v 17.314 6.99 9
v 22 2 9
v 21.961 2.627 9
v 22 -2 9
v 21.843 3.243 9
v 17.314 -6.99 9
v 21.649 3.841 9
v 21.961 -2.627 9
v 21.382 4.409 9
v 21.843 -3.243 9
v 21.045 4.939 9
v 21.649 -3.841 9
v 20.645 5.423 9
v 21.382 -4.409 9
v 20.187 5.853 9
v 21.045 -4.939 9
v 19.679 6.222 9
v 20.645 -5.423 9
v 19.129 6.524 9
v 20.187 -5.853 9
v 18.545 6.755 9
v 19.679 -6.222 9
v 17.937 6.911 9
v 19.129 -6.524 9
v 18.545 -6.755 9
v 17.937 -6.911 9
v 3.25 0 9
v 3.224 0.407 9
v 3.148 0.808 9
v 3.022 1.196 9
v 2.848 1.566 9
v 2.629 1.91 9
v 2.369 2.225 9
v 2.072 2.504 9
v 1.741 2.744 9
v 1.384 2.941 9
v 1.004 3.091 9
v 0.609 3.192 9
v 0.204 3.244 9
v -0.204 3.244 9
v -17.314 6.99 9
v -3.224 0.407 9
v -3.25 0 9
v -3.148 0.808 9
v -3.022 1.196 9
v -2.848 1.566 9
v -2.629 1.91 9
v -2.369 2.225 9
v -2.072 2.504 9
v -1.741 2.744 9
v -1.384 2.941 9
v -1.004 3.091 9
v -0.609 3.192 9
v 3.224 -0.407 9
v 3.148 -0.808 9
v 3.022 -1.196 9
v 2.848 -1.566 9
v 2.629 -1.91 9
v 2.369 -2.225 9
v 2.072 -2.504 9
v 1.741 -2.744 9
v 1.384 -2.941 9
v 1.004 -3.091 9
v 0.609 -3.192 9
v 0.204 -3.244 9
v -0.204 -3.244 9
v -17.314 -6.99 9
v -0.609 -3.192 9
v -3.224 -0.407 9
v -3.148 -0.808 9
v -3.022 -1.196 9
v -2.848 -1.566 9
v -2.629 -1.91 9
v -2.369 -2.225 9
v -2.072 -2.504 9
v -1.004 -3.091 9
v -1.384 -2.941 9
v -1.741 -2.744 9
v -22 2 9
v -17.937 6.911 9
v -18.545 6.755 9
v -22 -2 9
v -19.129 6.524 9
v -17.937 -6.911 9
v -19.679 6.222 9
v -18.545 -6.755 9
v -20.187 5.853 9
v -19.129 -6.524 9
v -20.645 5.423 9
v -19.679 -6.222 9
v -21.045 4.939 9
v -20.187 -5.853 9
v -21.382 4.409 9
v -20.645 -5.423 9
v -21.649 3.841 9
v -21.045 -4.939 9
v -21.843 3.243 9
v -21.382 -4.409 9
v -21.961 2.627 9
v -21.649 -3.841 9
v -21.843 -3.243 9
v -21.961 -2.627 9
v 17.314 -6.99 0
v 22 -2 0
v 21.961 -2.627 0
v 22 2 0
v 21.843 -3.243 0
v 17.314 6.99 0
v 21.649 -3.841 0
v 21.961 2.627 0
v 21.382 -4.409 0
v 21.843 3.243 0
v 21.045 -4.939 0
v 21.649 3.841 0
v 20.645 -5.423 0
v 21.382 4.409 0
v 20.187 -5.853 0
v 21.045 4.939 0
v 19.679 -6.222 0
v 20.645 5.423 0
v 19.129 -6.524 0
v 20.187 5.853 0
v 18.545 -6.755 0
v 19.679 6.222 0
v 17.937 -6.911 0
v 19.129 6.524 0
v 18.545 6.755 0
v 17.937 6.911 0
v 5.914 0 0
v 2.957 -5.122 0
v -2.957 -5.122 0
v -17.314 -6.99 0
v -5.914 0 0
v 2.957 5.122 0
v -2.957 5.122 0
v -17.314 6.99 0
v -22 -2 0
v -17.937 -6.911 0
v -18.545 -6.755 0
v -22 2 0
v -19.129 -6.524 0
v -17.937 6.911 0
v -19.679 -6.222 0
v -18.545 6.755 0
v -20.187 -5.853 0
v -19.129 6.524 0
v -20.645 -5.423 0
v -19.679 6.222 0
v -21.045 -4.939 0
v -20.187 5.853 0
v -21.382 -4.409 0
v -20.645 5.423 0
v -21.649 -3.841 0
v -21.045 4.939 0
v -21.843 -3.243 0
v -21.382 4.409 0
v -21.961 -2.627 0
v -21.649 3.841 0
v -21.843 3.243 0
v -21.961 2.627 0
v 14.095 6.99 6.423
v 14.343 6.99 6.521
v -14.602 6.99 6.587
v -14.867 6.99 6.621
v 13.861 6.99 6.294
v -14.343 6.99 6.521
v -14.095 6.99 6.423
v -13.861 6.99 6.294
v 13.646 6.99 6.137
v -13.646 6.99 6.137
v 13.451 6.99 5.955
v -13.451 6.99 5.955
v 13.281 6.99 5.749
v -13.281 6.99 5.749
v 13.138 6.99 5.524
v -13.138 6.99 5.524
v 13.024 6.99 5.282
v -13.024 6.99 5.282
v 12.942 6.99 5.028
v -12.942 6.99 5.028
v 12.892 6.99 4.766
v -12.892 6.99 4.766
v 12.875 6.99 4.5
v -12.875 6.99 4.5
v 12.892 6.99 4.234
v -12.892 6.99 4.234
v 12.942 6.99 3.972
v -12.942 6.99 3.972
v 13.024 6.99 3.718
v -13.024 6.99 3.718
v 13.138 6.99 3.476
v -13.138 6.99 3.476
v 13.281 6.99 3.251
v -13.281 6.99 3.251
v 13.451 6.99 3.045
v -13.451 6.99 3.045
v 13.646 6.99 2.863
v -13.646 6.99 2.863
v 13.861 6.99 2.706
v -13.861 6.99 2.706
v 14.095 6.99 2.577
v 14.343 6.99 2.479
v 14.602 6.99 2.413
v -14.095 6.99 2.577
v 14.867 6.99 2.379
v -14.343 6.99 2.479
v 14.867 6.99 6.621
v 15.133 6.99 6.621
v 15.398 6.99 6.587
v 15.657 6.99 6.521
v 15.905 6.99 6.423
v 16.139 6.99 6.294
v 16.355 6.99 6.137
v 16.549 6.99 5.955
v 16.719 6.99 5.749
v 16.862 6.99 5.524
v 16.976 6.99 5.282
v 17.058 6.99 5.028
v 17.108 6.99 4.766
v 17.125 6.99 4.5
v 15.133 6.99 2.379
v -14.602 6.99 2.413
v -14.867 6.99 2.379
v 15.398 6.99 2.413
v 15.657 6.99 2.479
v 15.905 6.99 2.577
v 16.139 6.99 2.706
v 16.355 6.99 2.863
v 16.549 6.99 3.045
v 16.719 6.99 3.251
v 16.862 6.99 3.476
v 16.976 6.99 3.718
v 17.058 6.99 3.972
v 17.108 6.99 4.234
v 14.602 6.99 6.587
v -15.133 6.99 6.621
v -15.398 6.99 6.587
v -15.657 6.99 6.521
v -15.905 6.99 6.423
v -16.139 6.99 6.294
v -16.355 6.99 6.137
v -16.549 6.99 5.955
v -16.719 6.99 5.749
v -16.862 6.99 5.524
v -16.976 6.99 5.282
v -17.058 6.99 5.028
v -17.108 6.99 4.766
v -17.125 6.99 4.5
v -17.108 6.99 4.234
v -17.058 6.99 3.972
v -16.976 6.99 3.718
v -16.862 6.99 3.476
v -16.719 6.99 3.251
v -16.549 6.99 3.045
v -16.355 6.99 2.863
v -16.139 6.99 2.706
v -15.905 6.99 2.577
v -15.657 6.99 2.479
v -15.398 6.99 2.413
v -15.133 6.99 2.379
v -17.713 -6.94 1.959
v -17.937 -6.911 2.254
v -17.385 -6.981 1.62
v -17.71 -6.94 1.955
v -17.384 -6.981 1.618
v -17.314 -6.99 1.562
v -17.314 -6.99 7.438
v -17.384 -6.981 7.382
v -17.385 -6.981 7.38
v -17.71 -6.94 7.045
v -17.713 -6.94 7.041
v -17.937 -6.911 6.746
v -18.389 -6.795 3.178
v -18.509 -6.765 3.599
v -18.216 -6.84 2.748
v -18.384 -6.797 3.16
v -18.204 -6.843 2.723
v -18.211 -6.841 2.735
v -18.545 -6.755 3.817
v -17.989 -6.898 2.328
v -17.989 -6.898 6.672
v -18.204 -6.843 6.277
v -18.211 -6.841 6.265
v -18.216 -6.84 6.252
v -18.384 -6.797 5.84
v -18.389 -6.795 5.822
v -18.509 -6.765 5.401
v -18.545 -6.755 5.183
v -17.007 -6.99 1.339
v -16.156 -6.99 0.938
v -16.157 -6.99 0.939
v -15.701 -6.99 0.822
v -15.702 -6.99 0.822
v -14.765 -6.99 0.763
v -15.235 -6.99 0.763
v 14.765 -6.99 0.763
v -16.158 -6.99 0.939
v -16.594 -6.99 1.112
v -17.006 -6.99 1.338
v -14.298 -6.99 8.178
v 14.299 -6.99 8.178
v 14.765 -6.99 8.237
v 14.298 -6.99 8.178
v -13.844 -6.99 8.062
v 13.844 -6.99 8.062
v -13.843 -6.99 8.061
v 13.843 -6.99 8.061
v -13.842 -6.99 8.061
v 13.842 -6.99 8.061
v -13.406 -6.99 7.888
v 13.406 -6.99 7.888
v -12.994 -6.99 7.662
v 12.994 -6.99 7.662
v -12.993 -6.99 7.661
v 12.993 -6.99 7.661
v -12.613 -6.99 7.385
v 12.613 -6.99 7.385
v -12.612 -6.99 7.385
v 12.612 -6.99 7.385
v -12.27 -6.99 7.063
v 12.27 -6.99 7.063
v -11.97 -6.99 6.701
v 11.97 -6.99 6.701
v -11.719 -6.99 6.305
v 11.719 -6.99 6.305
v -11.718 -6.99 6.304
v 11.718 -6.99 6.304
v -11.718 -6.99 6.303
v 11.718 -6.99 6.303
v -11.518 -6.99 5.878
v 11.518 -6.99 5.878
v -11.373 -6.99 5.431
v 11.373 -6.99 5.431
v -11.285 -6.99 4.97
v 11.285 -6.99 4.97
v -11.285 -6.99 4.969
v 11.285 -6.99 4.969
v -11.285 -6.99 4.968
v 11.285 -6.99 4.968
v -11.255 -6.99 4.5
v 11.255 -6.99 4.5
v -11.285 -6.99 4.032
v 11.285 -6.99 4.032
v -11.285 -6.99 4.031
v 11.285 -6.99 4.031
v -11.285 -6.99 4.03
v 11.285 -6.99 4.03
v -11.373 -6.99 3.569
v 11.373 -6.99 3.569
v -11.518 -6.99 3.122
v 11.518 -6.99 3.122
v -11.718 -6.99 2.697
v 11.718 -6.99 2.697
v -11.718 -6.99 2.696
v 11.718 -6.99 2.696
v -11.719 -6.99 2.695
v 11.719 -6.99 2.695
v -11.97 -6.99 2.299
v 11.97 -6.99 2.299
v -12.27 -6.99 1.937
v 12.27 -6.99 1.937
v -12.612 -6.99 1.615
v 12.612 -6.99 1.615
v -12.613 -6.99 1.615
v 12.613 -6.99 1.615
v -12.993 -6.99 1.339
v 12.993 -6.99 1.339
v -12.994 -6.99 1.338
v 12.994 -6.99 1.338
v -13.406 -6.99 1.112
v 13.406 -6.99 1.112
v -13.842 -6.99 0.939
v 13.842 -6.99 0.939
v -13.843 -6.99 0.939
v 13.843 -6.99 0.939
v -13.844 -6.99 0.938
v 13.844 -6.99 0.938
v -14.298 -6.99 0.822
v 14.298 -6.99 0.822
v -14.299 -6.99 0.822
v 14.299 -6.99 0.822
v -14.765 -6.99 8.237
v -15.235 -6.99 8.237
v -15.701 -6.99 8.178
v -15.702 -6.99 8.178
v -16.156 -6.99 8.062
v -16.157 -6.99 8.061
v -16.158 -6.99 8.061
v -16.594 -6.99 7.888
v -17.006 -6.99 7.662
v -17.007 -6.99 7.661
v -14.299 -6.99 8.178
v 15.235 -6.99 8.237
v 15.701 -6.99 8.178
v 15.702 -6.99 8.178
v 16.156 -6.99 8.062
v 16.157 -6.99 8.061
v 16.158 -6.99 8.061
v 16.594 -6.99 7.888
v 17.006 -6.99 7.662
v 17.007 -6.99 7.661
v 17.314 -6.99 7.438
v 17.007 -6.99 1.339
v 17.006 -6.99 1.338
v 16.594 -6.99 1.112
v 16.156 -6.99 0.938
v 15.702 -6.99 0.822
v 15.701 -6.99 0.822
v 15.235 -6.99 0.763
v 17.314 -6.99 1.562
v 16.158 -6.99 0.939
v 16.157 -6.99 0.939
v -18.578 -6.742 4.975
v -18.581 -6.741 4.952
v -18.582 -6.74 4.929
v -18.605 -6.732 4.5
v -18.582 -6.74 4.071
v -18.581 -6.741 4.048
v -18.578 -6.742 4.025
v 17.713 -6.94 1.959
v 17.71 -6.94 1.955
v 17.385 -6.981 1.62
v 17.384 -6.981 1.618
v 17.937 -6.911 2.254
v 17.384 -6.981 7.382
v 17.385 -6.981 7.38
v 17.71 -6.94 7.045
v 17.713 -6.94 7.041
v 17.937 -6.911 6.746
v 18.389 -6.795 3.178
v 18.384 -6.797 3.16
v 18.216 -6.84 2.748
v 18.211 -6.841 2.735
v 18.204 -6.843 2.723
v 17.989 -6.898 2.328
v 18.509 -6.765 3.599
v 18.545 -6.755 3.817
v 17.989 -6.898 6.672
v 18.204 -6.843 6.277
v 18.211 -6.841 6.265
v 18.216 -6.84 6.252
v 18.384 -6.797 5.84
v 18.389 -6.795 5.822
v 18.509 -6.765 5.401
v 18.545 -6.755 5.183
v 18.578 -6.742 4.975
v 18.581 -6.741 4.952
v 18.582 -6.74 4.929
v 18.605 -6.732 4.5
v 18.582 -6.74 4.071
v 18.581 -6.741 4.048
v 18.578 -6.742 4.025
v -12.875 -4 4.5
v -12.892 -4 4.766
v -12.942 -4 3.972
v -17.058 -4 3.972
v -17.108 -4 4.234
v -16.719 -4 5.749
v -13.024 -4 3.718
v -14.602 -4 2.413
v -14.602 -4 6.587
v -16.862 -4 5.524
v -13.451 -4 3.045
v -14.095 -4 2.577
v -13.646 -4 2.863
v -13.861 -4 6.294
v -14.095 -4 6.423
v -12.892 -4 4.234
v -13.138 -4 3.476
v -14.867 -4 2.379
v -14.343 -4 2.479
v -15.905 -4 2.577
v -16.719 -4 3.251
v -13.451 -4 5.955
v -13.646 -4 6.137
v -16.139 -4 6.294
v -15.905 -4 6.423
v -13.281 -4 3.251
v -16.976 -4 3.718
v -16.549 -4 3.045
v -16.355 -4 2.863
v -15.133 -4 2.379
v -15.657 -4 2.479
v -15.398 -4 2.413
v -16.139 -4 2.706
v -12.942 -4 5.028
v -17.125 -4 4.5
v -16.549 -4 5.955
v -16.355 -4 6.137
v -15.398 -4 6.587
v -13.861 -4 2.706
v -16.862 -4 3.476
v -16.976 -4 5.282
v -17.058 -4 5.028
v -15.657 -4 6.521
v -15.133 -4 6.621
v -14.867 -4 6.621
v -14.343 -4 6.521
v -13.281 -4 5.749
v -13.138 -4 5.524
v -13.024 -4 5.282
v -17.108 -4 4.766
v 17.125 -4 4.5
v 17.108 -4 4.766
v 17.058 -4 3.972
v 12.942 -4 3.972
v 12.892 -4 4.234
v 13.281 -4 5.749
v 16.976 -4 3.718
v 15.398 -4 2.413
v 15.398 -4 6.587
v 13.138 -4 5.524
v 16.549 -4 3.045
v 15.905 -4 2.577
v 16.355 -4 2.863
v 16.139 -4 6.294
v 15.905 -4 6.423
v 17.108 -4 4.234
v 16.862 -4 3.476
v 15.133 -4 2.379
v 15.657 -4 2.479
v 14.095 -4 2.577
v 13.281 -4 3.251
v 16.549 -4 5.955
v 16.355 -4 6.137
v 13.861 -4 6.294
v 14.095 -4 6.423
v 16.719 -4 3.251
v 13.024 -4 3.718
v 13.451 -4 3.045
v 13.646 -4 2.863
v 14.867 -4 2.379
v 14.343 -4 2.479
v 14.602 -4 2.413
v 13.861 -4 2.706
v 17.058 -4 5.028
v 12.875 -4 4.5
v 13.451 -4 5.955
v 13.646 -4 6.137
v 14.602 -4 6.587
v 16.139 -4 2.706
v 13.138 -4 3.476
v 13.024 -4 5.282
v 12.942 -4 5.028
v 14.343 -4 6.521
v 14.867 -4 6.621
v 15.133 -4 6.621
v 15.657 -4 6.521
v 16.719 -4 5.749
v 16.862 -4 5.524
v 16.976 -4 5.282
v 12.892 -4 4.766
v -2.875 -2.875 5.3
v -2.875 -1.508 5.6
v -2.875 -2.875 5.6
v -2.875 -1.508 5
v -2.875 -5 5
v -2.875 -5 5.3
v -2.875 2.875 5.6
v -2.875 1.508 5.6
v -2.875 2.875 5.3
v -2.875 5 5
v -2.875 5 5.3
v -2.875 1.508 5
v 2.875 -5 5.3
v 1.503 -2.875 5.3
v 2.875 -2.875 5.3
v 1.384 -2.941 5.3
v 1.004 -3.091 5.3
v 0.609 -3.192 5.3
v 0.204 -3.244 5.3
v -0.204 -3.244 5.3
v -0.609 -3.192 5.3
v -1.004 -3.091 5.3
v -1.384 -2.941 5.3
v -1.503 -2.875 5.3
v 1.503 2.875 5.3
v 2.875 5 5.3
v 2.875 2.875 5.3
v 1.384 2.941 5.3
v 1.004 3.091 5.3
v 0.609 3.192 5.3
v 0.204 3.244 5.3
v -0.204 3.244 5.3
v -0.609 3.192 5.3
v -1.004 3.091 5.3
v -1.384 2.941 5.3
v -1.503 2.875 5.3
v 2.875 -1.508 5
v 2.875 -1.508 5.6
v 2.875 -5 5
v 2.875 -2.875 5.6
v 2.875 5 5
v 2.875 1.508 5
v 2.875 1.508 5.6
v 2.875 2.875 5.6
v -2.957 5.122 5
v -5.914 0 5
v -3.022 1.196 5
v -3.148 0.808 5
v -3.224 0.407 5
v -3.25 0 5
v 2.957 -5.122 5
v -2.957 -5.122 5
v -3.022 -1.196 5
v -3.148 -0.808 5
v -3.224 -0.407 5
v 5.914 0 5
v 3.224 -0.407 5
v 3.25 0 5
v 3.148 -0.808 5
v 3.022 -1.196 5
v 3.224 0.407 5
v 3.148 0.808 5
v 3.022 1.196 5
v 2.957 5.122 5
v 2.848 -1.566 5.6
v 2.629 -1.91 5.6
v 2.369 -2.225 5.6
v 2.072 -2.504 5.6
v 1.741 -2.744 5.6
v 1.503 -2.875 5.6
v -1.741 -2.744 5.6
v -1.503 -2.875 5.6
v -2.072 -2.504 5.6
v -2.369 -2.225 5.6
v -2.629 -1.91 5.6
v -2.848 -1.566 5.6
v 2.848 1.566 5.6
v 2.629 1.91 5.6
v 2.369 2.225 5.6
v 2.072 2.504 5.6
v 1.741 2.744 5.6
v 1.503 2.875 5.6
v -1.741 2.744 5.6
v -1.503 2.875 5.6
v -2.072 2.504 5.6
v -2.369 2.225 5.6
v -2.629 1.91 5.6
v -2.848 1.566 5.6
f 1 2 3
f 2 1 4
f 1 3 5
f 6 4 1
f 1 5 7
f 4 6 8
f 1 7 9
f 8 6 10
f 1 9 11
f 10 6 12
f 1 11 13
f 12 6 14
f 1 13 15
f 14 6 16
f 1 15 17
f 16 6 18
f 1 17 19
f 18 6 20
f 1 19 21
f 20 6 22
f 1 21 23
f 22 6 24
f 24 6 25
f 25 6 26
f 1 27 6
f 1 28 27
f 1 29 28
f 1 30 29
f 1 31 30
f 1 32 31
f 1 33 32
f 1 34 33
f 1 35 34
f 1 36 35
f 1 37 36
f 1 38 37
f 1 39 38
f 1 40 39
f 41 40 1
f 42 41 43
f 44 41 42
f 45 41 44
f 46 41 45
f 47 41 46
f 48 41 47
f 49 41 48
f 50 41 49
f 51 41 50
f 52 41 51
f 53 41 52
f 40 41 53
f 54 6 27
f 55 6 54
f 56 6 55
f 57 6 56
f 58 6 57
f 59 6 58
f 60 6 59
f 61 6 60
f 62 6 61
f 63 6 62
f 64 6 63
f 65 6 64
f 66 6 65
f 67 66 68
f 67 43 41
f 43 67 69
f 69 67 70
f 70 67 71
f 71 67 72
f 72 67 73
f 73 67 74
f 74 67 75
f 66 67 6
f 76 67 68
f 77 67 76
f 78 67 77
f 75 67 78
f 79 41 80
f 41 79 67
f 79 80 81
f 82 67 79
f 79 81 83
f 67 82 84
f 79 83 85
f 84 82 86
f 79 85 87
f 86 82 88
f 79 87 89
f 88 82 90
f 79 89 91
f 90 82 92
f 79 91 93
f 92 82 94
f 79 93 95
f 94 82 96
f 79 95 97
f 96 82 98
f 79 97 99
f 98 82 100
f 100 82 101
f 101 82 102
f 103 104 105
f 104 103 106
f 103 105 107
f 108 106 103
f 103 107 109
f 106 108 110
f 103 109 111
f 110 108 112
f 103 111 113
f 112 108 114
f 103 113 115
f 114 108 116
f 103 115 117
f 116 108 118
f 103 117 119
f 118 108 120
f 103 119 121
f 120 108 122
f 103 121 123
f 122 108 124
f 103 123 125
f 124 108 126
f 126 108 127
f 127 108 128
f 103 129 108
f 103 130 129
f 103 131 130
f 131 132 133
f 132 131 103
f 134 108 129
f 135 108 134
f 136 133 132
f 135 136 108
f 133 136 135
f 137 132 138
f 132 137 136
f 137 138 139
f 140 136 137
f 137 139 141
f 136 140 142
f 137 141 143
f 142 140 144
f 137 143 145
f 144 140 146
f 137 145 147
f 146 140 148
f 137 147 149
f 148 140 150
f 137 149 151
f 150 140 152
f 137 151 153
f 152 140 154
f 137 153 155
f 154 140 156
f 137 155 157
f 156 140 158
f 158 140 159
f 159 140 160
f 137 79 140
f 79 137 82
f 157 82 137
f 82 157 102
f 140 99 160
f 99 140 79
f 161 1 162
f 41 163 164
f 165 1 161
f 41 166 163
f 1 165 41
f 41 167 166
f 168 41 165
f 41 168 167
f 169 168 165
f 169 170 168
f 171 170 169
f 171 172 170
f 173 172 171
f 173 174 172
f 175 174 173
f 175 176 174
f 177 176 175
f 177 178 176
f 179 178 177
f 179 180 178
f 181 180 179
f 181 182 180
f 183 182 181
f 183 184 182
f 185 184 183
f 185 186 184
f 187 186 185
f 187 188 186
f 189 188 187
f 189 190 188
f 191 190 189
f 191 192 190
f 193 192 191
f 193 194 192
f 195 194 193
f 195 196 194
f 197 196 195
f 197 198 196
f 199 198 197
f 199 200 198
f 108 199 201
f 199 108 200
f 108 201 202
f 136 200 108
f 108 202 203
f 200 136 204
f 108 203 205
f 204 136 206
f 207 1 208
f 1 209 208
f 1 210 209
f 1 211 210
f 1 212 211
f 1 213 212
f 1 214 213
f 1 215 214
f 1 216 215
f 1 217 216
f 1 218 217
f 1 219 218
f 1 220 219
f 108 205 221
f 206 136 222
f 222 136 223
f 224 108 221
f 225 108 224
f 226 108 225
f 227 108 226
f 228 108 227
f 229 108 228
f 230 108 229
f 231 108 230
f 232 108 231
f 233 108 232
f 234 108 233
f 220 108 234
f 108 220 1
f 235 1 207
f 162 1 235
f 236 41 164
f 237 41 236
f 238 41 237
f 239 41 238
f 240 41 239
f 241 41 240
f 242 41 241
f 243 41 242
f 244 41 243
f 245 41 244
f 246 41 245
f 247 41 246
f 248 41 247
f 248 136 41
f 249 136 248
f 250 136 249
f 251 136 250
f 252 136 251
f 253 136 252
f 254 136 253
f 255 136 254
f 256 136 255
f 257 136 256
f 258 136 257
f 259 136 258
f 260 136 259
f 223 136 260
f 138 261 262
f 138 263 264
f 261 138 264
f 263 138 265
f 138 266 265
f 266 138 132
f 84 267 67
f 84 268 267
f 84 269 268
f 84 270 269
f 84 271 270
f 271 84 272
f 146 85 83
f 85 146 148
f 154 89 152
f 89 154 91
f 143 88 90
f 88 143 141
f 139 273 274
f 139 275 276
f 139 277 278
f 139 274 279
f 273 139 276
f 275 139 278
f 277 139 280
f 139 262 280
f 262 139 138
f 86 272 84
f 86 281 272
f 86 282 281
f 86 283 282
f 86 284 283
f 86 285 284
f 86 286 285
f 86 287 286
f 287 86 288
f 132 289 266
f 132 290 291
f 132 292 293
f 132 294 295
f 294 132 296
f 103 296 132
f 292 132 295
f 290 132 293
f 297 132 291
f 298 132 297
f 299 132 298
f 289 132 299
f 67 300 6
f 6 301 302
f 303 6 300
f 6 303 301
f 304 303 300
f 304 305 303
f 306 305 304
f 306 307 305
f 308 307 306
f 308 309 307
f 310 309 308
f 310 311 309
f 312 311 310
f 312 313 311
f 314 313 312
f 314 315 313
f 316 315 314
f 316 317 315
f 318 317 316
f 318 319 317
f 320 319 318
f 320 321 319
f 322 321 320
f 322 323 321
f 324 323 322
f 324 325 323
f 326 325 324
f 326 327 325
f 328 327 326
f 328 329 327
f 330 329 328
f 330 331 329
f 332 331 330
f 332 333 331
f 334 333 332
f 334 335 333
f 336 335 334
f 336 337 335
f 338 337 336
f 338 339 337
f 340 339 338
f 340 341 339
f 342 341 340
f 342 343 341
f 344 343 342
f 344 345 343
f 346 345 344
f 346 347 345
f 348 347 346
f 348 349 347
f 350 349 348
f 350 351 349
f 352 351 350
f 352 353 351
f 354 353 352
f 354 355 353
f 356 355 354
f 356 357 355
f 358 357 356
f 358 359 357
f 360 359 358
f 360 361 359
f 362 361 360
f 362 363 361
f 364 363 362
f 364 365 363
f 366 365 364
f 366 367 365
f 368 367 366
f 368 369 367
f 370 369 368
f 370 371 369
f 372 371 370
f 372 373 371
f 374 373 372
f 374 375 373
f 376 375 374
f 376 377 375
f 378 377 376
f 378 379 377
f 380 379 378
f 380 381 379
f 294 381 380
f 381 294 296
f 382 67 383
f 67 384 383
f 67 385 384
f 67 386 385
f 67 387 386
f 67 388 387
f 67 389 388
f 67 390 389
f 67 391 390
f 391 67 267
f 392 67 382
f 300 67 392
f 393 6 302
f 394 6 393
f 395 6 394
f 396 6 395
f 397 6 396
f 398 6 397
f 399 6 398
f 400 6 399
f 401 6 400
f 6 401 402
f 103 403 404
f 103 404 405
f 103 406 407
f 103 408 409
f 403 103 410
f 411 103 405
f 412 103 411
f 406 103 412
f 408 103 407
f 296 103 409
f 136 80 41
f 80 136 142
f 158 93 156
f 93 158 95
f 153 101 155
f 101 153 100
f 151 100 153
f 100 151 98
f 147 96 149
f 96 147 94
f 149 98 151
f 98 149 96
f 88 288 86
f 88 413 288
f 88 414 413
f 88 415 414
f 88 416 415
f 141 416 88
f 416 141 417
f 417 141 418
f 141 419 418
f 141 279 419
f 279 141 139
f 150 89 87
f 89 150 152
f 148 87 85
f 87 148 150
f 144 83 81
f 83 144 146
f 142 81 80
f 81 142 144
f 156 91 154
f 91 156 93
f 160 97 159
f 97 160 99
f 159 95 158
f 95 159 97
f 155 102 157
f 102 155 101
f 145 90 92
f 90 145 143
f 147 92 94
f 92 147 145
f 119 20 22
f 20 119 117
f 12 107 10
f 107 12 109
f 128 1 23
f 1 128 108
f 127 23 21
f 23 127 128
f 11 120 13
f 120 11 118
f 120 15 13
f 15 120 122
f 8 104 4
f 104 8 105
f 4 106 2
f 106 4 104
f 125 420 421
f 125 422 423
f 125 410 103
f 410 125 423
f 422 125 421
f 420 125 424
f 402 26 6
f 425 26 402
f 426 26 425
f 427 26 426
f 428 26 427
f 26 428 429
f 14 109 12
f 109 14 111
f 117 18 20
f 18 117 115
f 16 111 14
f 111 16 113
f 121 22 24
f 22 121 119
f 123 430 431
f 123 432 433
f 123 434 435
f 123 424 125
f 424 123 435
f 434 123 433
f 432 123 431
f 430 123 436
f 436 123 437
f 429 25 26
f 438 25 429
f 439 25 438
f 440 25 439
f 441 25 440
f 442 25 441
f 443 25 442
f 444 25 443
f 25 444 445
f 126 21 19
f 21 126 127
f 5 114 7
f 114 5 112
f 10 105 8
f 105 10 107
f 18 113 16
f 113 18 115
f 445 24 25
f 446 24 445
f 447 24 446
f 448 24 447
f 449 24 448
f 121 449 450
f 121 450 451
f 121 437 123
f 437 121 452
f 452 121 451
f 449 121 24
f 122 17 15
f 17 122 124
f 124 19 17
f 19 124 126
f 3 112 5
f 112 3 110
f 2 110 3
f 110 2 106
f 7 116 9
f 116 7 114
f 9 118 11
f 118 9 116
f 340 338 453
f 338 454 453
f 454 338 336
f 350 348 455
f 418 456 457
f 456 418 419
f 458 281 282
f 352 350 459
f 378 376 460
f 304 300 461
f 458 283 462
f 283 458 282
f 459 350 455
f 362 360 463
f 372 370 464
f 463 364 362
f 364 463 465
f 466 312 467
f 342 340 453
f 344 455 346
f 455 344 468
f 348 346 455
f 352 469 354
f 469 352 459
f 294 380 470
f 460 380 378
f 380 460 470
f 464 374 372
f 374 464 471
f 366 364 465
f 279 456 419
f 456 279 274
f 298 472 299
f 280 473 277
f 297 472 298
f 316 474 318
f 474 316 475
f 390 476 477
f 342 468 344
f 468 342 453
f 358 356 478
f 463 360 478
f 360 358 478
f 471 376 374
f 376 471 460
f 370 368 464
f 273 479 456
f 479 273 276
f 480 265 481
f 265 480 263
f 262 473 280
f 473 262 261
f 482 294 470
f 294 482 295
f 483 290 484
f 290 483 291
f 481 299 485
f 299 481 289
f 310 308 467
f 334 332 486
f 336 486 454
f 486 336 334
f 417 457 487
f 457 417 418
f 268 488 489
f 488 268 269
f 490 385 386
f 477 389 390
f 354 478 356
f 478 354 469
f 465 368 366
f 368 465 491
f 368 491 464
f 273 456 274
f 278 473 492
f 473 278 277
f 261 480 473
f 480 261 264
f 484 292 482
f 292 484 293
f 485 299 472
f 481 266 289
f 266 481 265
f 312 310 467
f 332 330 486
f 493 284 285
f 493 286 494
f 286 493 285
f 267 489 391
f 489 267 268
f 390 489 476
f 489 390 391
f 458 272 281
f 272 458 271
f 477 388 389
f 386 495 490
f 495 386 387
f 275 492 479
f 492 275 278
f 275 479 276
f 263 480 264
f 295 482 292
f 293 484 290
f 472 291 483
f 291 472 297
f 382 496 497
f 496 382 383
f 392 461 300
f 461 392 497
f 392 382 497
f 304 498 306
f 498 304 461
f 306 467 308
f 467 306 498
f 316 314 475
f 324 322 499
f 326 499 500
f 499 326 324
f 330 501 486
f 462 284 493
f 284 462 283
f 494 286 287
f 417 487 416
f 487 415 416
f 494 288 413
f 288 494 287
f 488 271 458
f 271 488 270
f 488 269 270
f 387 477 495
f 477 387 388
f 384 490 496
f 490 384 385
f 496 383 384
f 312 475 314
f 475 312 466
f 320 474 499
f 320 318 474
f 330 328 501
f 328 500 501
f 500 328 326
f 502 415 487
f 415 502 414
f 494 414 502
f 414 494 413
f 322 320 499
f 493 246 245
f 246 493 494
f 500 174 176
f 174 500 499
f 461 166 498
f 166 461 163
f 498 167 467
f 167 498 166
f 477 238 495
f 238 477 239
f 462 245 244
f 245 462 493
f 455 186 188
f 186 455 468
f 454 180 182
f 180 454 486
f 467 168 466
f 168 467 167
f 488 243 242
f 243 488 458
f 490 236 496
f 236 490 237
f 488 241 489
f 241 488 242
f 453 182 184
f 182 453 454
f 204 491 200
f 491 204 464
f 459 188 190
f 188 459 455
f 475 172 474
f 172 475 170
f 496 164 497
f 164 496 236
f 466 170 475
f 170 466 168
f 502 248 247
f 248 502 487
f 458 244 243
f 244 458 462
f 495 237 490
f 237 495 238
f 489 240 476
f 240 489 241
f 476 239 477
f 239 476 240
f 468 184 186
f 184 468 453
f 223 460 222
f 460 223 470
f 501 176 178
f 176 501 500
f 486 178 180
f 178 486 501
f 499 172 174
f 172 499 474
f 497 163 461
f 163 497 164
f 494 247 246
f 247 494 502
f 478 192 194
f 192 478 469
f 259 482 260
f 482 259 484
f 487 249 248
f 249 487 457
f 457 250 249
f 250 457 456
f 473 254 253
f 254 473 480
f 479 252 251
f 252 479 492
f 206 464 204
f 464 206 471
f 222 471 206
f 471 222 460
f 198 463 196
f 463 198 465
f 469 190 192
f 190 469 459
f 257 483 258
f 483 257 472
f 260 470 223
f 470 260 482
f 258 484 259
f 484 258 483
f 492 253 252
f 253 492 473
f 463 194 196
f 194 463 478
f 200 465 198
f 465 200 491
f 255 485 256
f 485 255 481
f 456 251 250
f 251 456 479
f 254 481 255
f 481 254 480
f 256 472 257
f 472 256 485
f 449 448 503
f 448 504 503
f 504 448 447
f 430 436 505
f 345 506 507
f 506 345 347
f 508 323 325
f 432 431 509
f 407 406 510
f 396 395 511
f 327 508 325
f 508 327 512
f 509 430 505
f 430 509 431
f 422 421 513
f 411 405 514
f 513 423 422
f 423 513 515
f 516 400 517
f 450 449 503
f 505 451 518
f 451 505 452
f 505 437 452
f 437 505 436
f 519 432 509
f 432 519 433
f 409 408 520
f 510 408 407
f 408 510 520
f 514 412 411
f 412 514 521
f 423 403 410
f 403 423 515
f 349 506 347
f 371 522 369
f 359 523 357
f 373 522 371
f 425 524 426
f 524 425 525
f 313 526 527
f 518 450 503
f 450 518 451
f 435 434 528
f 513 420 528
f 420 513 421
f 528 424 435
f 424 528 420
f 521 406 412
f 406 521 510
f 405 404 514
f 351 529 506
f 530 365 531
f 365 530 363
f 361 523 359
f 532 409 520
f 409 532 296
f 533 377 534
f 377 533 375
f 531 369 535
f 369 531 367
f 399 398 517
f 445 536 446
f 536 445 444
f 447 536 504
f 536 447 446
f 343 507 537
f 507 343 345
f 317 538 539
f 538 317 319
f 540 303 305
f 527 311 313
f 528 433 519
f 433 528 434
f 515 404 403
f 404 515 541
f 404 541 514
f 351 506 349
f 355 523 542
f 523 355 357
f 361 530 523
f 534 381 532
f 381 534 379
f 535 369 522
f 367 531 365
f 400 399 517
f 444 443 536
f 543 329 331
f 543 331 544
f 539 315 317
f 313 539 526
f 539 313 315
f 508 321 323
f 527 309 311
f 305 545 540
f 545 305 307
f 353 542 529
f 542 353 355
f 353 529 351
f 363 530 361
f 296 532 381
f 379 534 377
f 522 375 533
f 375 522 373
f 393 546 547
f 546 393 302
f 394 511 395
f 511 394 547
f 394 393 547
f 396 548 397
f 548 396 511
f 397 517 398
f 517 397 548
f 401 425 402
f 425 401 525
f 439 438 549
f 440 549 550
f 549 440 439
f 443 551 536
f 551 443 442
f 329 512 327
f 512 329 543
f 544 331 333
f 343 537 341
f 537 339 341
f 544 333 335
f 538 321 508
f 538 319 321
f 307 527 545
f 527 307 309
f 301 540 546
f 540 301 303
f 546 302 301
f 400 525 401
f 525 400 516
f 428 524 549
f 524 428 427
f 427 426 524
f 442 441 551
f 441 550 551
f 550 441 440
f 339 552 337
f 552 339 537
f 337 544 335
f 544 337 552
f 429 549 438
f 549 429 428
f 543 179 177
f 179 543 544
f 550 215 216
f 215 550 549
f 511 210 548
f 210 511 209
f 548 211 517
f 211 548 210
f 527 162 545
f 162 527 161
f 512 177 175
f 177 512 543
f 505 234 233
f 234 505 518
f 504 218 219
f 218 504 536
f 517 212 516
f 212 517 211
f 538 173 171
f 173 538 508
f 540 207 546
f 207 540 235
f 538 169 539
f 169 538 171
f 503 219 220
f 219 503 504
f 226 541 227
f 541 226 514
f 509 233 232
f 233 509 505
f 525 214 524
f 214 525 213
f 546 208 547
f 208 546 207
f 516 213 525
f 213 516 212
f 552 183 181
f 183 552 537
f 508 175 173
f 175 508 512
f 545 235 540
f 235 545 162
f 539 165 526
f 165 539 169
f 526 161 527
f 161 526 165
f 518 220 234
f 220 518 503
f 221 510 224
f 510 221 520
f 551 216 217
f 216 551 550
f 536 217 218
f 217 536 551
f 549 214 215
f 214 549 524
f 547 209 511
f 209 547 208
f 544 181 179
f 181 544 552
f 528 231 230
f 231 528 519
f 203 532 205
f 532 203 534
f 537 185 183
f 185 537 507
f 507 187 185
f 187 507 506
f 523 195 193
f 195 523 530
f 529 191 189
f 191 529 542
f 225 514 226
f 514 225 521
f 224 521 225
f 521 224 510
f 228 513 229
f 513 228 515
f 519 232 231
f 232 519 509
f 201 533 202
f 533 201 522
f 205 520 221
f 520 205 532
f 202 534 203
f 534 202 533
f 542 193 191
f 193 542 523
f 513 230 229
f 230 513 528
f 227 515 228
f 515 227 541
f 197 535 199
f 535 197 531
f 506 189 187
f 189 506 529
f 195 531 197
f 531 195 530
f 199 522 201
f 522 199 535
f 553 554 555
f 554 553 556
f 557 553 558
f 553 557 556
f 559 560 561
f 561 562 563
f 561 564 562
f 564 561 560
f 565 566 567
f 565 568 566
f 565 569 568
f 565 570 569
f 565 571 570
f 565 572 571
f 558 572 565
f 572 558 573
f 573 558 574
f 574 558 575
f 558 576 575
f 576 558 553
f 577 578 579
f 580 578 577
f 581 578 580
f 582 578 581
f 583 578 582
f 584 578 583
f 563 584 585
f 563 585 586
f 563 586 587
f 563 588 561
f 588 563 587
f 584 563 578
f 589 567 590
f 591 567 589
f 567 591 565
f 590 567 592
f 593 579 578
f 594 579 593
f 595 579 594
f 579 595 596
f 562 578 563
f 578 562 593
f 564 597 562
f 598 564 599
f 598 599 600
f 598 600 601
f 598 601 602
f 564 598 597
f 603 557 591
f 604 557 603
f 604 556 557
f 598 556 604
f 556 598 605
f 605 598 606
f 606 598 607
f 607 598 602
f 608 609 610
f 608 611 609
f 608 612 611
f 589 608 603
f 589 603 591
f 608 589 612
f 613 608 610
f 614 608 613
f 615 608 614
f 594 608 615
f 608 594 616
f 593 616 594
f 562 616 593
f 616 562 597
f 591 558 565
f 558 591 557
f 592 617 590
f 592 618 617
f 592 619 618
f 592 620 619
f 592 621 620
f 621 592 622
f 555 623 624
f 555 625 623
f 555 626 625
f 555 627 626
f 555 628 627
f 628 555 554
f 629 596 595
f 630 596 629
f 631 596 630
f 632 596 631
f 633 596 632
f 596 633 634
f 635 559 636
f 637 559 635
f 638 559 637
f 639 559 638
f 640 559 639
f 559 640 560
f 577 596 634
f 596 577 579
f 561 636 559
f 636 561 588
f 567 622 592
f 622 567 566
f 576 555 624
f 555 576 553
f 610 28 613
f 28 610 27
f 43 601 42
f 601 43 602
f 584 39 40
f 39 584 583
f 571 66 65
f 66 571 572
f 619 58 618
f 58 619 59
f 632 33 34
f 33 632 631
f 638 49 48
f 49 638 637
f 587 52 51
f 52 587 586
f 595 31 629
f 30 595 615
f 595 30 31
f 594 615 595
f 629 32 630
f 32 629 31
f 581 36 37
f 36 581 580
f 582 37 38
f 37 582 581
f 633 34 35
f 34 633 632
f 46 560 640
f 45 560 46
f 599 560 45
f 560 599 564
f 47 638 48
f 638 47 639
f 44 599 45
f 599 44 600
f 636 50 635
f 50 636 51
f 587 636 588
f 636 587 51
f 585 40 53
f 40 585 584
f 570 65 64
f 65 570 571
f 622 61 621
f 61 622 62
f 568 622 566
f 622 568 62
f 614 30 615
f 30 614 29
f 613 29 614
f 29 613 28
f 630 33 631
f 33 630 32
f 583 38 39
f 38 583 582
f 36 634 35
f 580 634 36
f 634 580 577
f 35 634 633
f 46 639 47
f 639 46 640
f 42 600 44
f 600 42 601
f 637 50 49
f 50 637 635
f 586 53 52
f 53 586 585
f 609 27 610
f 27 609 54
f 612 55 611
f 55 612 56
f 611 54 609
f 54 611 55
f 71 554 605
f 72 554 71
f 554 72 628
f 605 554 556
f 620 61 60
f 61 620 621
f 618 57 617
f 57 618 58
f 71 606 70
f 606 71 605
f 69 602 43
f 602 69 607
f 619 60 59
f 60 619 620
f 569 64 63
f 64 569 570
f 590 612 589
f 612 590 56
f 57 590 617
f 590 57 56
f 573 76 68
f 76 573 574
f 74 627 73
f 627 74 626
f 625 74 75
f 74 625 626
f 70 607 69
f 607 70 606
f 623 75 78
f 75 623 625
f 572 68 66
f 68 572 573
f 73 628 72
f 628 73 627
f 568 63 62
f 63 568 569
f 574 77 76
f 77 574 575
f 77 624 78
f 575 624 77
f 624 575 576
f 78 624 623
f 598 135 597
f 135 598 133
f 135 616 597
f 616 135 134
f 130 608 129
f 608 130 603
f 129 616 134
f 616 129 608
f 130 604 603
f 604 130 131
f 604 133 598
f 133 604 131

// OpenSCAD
$fn = 50;


difference() {
	union() {
		cylinder(h = 9, r = 7.0000000000);
		translate(v = [-7.5000000000, 0.0000000000, 0]) {
			hull() {
				translate(v = [-9.5000000000, 2.0000000000, 0]) {
					cylinder(h = 9, r = 5);
				}
				translate(v = [9.5000000000, 2.0000000000, 0]) {
					cylinder(h = 9, r = 5);
				}
				translate(v = [-9.5000000000, -2.0000000000, 0]) {
					cylinder(h = 9, r = 5);
				}
				translate(v = [9.5000000000, -2.0000000000, 0]) {
					cylinder(h = 9, r = 5);
				}
			}
		}
		translate(v = [-7.5000000000, 0.0000000000, 0]) {
			hull() {
				translate(v = [-9.5000000000, 2.0000000000, 0]) {
					cylinder(h = 9, r = 5);
				}
				translate(v = [9.5000000000, 2.0000000000, 0]) {
					cylinder(h = 9, r = 5);
				}
				translate(v = [-9.5000000000, -2.0000000000, 0]) {
					cylinder(h = 9, r = 5);
				}
				translate(v = [9.5000000000, -2.0000000000, 0]) {
					cylinder(h = 9, r = 5);
				}
			}
		}
		translate(v = [7.5000000000, 0.0000000000, 0]) {
			hull() {
				translate(v = [-9.5000000000, 2.0000000000, 0]) {
					cylinder(h = 9, r = 5);
				}
				translate(v = [9.5000000000, 2.0000000000, 0]) {
					cylinder(h = 9, r = 5);
				}
				translate(v = [-9.5000000000, -2.0000000000, 0]) {
					cylinder(h = 9, r = 5);
				}
				translate(v = [9.5000000000, -2.0000000000, 0]) {
					cylinder(h = 9, r = 5);
				}
			}
		}
		translate(v = [7.5000000000, 0.0000000000, 0]) {
			hull() {
				translate(v = [-9.5000000000, 2.0000000000, 0]) {
					cylinder(h = 9, r = 5);
				}
				translate(v = [9.5000000000, 2.0000000000, 0]) {
					cylinder(h = 9, r = 5);
				}
				translate(v = [-9.5000000000, -2.0000000000, 0]) {
					cylinder(h = 9, r = 5);
				}
				translate(v = [9.5000000000, -2.0000000000, 0]) {
					cylinder(h = 9, r = 5);
				}
			}
		}
	}
	union() {
		translate(v = [-15.0000000000, -7.0000000000, 4.5000000000]) {
			rotate(a = [90, 0, 0]) {
				difference() {
					union() {
						#translate(v = [0, 0, -14.0000000000]) {
							cylinder(h = 14, r = 2.0000000000);
						}
						#translate(v = [0, 0, -3]) {
							cylinder(h = 3, r1 = 2.1250000000, r2 = 3.7500000000);
						}
						#translate(v = [0, 0, -14.0000000000]) {
							cylinder(h = 14, r = 2.1250000000);
						}
						#translate(v = [0, 0, -14.0000000000]) {
							cylinder(h = 14, r = 2.0000000000);
						}
					}
					union();
				}
			}
		}
		translate(v = [15.0000000000, -7.0000000000, 4.5000000000]) {
			rotate(a = [90, 0, 0]) {
				difference() {
					union() {
						#translate(v = [0, 0, -14.0000000000]) {
							cylinder(h = 14, r = 2.0000000000);
						}
						#translate(v = [0, 0, -3]) {
							cylinder(h = 3, r1 = 2.1250000000, r2 = 3.7500000000);
						}
						#translate(v = [0, 0, -14.0000000000]) {
							cylinder(h = 14, r = 2.1250000000);
						}
						#translate(v = [0, 0, -14.0000000000]) {
							cylinder(h = 14, r = 2.0000000000);
						}
					}
					union();
				}
			}
		}
		translate(v = [0.0000000000, 0.0000000000, 0]) {
			rotate(a = [0, 0, 0]) {
				difference() {
					union() {
						#translate(v = [-2.8750000000, -5.0000000000, -0.3000000000]) {
							cube(size = [5.7500000000, 10, 0.3000000000]);
						}
						#translate(v = [-2.8750000000, -2.8750000000, -0.6000000000]) {
							cube(size = [5.7500000000, 5.7500000000, 0.3000000000]);
						}
						#translate(v = [-2.8750000000, -5.0000000000, 5]) {
							cube(size = [5.7500000000, 10, 0.3000000000]);
						}
						#translate(v = [-2.8750000000, -2.8750000000, 5.3000000000]) {
							cube(size = [5.7500000000, 5.7500000000, 0.3000000000]);
						}
						#translate(v = [0, 0, -100.0000000000]) {
							cylinder(h = 200, r = 3.2500000000);
						}
						#linear_extrude(height = 5) {
							polygon(points = [[5.9142500000, 0.0000000000], [2.9571250000, 5.1218907443], [-2.9571250000, 5.1218907443], [-5.9142500000, 0.0000000000], [-2.9571250000, -5.1218907443], [2.9571250000, -5.1218907443]]);
						}
						#translate(v = [-2.8750000000, -5.0000000000, -0.3000000000]) {
							cube(size = [5.7500000000, 10, 0.3000000000]);
						}
						#translate(v = [-2.8750000000, -2.8750000000, -0.6000000000]) {
							cube(size = [5.7500000000, 5.7500000000, 0.3000000000]);
						}
						#translate(v = [-2.8750000000, -5.0000000000, 5]) {
							cube(size = [5.7500000000, 10, 0.3000000000]);
						}
						#translate(v = [-2.8750000000, -2.8750000000, 5.3000000000]) {
							cube(size = [5.7500000000, 5.7500000000, 0.3000000000]);
						}
						#translate(v = [0, 0, -100.0000000000]) {
							cylinder(h = 200, r = 3.2500000000);
						}
						#translate(v = [-2.8750000000, -5.0000000000, -0.3000000000]) {
							cube(size = [5.7500000000, 10, 0.3000000000]);
						}
						#translate(v = [-2.8750000000, -2.8750000000, -0.6000000000]) {
							cube(size = [5.7500000000, 5.7500000000, 0.3000000000]);
						}
						#translate(v = [-2.8750000000, -5.0000000000, 5]) {
							cube(size = [5.7500000000, 10, 0.3000000000]);
						}
						#translate(v = [-2.8750000000, -2.8750000000, 5.3000000000]) {
							cube(size = [5.7500000000, 5.7500000000, 0.3000000000]);
						}
						#translate(v = [0, 0, -100.0000000000]) {
							cylinder(h = 200, r = 3.2500000000);
						}
					}
					union();
				}
			}
		}
		translate(v = [0, 0, -100]) {
			cylinder(h = 200, r = 3.2500000000);
		}
		translate(v = [0, 0, -100]) {
			cylinder(h = 200, r = 1.8000000000);
		}
	}
}
